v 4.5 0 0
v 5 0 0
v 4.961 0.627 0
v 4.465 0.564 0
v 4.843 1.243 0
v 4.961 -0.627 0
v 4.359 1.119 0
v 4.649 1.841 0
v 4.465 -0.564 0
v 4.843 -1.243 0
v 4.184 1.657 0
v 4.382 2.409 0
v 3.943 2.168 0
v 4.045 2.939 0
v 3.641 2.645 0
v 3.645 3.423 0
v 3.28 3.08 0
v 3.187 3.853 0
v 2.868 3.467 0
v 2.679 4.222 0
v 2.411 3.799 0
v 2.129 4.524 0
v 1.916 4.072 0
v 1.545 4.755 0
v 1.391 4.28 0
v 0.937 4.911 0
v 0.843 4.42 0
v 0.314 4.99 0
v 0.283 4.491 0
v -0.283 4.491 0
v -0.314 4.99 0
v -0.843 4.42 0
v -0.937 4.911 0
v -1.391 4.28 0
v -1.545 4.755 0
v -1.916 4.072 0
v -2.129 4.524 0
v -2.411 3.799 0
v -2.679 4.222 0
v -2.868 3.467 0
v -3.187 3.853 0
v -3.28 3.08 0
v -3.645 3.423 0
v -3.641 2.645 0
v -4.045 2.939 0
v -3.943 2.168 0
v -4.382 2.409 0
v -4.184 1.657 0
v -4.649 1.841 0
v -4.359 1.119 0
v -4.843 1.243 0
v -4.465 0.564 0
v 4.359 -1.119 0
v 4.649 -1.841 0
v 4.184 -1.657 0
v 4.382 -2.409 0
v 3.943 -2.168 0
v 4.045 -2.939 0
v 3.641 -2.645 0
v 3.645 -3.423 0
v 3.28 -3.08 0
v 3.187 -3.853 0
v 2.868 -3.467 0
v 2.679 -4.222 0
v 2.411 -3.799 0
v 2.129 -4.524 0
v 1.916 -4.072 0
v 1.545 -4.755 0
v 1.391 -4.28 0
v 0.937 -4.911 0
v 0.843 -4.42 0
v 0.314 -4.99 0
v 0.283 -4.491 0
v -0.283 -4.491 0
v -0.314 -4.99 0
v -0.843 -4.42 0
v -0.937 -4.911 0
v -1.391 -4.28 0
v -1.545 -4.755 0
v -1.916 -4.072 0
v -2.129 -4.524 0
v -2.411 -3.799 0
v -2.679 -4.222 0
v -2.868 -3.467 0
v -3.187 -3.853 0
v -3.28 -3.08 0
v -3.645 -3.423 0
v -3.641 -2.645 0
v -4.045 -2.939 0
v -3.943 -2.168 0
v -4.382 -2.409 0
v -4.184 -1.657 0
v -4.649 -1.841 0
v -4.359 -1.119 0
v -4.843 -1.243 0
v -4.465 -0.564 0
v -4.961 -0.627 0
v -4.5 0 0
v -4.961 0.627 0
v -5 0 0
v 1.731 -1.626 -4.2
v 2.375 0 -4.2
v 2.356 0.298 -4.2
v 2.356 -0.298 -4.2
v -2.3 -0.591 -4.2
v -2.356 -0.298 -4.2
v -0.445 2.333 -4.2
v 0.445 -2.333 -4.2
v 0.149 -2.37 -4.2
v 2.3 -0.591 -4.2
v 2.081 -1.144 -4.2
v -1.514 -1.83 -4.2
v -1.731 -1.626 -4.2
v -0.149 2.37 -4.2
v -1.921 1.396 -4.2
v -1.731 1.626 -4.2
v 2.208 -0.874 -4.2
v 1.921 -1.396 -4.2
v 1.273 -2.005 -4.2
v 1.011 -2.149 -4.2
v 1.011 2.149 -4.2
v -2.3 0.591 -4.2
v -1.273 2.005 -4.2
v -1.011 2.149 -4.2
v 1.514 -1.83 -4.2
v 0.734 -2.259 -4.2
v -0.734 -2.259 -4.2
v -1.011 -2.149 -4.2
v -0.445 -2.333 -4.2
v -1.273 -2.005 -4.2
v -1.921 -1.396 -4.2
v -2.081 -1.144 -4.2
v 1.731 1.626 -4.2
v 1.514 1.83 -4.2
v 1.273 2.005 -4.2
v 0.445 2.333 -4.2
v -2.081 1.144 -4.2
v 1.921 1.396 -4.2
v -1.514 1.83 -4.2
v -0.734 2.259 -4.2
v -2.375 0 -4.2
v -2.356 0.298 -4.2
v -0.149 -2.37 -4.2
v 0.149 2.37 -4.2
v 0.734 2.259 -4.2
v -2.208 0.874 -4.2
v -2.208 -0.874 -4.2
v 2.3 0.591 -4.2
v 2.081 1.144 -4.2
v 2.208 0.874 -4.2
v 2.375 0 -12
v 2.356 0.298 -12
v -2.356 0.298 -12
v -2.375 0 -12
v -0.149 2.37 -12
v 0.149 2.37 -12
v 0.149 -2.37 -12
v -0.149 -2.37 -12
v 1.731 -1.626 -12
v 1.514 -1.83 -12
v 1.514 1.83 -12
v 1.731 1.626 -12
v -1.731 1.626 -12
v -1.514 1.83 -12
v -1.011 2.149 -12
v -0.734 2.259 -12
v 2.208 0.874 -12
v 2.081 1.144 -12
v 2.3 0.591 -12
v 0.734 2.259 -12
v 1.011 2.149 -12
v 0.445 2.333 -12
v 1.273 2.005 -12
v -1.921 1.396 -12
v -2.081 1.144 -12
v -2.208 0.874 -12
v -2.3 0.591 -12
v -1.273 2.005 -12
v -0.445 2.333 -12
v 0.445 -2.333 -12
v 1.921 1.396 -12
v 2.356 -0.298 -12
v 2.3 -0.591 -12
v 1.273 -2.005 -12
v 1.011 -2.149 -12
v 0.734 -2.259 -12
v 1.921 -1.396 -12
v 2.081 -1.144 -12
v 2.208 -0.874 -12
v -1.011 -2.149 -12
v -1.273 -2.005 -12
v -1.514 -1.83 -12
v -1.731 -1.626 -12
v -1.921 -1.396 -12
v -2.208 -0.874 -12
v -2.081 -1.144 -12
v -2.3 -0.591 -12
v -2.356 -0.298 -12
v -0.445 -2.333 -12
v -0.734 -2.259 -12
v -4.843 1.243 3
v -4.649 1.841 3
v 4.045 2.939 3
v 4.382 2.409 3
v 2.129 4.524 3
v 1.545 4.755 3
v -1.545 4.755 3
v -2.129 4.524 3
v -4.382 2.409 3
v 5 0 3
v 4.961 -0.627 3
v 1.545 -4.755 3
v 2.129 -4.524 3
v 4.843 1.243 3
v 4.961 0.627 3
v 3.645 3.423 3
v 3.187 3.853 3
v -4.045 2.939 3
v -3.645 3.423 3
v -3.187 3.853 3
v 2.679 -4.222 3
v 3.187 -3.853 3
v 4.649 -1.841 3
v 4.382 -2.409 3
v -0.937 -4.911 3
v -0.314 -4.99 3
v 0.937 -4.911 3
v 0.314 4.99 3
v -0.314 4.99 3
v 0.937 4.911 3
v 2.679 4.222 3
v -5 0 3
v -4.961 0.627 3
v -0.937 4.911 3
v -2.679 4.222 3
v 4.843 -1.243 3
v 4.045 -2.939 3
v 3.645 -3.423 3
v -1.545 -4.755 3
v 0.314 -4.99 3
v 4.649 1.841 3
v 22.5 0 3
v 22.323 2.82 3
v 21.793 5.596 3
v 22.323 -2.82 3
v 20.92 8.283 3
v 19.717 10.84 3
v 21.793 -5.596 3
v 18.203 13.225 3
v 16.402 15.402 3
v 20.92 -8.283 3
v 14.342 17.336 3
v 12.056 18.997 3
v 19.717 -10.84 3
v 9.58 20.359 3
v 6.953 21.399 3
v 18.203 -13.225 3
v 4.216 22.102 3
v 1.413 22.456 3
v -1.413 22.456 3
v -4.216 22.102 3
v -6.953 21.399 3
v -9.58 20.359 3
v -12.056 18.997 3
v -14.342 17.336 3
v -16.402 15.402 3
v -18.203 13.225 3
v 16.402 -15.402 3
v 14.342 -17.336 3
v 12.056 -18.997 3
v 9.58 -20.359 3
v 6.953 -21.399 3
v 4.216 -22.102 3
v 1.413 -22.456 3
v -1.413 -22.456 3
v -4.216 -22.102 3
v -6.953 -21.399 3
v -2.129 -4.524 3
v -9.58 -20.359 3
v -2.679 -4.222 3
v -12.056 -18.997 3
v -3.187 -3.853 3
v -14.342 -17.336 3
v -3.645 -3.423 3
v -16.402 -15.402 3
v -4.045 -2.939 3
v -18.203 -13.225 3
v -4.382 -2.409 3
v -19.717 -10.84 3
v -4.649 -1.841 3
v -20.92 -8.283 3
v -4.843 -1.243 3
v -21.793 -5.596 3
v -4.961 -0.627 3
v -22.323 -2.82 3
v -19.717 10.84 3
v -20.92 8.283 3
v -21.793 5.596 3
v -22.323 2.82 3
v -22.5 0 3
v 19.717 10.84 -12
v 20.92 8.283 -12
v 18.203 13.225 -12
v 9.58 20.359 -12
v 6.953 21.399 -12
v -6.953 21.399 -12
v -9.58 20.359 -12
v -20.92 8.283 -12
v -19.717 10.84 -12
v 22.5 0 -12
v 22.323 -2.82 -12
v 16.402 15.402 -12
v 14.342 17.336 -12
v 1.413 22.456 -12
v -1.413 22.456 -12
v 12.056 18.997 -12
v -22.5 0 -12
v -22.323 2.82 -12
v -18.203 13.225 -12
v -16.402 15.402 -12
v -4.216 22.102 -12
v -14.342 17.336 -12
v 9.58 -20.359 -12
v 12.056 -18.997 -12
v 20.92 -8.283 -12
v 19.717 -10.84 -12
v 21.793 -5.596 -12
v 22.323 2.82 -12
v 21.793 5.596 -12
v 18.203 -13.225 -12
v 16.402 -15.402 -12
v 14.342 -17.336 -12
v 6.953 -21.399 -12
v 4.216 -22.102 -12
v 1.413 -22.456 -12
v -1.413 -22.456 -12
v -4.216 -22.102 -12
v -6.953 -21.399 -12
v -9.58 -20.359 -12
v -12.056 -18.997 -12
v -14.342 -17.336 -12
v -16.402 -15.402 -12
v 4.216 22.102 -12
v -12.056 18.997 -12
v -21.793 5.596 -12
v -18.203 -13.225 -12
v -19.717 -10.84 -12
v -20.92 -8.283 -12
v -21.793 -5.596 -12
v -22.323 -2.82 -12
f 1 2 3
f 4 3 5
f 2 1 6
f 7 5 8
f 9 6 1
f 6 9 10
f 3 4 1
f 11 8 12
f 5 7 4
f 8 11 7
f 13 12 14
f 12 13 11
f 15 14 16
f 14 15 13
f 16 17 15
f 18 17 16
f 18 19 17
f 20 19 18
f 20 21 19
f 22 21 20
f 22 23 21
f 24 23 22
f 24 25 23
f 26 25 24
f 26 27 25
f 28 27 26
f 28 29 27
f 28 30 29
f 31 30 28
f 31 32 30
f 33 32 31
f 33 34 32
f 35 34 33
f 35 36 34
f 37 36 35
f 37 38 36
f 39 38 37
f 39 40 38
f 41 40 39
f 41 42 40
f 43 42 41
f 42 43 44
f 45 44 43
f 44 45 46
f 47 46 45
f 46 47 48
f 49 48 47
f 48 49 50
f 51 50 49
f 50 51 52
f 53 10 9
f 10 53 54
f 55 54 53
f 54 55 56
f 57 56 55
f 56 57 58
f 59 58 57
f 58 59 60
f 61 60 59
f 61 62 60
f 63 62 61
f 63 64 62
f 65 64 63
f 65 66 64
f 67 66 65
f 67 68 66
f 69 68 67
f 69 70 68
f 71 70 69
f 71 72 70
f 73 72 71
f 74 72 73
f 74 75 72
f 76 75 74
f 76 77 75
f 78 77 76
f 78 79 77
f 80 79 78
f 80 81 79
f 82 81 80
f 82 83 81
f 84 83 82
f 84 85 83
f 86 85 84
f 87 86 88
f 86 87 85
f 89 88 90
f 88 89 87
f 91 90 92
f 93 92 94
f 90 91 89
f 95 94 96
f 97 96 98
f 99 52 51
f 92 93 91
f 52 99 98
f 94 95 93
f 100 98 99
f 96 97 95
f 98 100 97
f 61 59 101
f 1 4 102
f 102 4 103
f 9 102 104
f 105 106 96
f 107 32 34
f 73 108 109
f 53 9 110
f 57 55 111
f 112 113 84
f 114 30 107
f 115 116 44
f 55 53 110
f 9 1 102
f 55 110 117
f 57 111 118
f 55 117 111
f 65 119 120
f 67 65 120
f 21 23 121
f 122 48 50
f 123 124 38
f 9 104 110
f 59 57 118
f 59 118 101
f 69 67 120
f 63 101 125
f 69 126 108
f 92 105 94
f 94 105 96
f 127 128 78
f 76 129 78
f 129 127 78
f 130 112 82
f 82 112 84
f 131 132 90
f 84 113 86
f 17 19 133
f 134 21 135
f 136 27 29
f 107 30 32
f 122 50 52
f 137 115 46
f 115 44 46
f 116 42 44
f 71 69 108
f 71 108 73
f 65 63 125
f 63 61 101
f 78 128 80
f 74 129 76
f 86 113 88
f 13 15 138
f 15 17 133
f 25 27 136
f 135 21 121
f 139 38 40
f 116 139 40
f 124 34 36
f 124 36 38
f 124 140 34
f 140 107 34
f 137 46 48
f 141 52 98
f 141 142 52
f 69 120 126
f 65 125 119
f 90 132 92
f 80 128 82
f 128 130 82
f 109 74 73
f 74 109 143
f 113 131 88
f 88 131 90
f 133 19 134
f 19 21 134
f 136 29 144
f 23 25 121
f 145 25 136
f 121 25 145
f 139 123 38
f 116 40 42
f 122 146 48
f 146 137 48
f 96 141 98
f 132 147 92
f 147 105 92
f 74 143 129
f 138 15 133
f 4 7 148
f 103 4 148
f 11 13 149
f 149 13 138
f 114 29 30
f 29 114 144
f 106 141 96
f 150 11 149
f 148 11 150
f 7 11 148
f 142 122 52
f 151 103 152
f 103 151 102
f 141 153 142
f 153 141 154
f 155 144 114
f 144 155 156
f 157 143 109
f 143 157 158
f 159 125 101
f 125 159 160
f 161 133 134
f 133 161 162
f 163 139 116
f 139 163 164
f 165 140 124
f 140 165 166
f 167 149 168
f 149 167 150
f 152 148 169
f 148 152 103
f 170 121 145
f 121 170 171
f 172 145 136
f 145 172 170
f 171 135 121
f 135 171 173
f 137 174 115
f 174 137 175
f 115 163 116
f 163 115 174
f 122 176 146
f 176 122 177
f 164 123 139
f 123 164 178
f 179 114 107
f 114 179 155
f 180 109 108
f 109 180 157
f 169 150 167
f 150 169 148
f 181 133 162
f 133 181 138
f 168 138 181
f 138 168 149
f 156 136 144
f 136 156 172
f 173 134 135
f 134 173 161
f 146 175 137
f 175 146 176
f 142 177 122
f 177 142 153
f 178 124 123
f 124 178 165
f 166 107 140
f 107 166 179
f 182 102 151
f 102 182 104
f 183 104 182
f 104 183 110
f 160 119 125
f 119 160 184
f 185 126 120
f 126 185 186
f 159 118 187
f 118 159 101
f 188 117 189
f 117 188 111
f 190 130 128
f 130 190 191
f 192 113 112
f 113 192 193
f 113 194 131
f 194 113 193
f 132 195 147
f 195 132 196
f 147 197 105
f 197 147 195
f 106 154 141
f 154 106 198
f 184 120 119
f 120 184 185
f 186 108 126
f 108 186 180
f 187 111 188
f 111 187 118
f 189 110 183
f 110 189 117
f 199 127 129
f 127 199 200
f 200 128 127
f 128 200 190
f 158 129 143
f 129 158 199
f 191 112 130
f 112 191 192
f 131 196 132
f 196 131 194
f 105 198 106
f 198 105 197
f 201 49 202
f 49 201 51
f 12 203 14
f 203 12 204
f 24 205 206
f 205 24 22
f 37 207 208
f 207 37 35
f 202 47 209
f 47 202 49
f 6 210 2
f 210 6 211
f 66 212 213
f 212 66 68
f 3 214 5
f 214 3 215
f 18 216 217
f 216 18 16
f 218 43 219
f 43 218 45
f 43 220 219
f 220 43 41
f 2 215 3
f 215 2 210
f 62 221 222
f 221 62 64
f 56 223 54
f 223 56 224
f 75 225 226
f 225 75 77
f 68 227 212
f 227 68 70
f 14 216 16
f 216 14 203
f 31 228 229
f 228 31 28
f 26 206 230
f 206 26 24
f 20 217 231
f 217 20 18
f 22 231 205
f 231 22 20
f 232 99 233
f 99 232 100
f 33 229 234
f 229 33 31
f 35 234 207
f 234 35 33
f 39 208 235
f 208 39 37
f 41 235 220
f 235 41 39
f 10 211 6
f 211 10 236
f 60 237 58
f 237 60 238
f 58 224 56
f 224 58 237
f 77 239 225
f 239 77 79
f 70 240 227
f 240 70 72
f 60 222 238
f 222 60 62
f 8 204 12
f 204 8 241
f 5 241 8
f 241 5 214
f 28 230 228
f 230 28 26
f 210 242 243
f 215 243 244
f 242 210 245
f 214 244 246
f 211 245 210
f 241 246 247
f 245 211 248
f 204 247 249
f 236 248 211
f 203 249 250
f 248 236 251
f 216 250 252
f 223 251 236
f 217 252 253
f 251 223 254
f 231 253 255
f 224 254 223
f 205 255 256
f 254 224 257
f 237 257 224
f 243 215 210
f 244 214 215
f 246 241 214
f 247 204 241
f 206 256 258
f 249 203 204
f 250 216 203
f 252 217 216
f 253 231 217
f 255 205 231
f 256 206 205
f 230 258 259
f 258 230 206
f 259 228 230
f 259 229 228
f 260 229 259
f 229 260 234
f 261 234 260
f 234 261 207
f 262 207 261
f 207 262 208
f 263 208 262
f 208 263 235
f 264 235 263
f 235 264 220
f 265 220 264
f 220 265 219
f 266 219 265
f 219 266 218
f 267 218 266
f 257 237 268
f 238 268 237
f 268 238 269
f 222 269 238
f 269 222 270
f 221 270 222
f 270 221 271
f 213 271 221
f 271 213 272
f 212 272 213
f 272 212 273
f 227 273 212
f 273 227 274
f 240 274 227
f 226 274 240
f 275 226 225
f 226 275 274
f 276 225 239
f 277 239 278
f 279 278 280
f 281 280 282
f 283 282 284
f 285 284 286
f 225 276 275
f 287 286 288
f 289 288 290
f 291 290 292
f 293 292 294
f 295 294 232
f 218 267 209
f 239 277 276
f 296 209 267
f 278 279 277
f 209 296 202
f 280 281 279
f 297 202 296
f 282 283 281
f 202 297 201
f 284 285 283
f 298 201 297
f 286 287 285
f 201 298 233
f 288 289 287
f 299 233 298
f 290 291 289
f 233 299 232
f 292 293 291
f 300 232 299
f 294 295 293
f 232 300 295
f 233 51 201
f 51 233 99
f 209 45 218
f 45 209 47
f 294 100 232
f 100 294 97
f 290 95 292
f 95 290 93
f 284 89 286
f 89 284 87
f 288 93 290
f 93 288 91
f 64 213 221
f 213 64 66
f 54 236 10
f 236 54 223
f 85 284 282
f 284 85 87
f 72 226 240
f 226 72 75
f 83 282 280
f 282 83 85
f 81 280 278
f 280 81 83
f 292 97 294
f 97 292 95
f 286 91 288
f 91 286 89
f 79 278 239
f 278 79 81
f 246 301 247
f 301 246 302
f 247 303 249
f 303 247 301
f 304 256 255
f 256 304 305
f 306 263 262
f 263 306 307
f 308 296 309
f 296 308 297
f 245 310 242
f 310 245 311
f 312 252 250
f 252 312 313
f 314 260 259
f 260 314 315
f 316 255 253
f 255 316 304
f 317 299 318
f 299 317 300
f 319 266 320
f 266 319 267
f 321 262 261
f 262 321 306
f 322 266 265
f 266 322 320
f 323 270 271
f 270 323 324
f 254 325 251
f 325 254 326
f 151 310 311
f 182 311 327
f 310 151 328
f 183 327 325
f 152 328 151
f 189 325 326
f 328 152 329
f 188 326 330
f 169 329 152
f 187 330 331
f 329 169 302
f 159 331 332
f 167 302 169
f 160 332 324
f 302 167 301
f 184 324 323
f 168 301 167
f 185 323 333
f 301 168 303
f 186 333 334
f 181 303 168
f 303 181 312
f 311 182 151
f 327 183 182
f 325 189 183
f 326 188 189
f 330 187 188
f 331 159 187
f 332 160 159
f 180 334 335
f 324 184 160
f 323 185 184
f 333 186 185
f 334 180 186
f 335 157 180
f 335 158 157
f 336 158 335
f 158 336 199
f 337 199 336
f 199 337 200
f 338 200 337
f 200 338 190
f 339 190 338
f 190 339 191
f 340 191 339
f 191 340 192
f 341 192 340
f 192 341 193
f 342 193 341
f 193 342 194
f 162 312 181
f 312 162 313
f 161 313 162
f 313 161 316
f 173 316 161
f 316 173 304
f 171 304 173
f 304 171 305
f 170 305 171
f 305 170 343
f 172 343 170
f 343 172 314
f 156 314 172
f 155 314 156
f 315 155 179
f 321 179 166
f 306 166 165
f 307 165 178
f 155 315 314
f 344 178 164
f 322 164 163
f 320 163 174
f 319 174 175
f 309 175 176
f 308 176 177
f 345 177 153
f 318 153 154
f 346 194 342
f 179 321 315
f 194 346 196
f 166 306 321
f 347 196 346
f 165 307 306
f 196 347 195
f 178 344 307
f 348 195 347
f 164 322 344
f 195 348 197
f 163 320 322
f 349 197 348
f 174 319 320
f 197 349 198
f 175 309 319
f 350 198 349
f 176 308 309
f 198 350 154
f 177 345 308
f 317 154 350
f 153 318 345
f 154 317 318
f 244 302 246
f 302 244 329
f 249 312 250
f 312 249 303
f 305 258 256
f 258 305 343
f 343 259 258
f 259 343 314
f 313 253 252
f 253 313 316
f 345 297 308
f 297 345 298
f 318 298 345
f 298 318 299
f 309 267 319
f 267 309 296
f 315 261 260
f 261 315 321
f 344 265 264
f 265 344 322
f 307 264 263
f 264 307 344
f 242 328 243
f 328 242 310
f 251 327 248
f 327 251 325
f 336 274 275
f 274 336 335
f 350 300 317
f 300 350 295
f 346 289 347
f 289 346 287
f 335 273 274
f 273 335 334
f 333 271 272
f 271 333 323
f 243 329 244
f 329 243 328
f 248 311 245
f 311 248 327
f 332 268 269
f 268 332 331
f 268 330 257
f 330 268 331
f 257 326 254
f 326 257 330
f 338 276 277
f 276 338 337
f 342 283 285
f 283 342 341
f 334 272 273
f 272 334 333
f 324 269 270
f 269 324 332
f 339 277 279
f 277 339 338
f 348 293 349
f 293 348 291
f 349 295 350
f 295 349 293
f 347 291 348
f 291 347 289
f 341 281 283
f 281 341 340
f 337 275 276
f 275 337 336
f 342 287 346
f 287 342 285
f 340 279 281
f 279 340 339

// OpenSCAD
$fn = 50;

difference() {
	union() {
		translate(v = [0, 0, -12.0]) {
			cylinder(h = 15, r = 22.5);
		}
	}
	union() {
		translate(v = [0, 0, 0]) {
			rotate(a = [0, 0, 0]) {
				difference() {
					union() {
						translate(v = [0, 0, -15.0]) {
							cylinder(h = 15, r = 2.25);
						}
						translate(v = [0, 0, -4.2]) {
							cylinder(h = 4.2, r1 = 2.375, r2 = 4.5);
						}
						translate(v = [0, 0, -15.0]) {
							cylinder(h = 15, r = 2.375);
						}
						translate(v = [0, 0, -15.0]) {
							cylinder(h = 15, r = 2.25);
						}
					}
					union();
				}
			}
		}
		#cylinder(h = 3, r = 5.0);
	}
}
